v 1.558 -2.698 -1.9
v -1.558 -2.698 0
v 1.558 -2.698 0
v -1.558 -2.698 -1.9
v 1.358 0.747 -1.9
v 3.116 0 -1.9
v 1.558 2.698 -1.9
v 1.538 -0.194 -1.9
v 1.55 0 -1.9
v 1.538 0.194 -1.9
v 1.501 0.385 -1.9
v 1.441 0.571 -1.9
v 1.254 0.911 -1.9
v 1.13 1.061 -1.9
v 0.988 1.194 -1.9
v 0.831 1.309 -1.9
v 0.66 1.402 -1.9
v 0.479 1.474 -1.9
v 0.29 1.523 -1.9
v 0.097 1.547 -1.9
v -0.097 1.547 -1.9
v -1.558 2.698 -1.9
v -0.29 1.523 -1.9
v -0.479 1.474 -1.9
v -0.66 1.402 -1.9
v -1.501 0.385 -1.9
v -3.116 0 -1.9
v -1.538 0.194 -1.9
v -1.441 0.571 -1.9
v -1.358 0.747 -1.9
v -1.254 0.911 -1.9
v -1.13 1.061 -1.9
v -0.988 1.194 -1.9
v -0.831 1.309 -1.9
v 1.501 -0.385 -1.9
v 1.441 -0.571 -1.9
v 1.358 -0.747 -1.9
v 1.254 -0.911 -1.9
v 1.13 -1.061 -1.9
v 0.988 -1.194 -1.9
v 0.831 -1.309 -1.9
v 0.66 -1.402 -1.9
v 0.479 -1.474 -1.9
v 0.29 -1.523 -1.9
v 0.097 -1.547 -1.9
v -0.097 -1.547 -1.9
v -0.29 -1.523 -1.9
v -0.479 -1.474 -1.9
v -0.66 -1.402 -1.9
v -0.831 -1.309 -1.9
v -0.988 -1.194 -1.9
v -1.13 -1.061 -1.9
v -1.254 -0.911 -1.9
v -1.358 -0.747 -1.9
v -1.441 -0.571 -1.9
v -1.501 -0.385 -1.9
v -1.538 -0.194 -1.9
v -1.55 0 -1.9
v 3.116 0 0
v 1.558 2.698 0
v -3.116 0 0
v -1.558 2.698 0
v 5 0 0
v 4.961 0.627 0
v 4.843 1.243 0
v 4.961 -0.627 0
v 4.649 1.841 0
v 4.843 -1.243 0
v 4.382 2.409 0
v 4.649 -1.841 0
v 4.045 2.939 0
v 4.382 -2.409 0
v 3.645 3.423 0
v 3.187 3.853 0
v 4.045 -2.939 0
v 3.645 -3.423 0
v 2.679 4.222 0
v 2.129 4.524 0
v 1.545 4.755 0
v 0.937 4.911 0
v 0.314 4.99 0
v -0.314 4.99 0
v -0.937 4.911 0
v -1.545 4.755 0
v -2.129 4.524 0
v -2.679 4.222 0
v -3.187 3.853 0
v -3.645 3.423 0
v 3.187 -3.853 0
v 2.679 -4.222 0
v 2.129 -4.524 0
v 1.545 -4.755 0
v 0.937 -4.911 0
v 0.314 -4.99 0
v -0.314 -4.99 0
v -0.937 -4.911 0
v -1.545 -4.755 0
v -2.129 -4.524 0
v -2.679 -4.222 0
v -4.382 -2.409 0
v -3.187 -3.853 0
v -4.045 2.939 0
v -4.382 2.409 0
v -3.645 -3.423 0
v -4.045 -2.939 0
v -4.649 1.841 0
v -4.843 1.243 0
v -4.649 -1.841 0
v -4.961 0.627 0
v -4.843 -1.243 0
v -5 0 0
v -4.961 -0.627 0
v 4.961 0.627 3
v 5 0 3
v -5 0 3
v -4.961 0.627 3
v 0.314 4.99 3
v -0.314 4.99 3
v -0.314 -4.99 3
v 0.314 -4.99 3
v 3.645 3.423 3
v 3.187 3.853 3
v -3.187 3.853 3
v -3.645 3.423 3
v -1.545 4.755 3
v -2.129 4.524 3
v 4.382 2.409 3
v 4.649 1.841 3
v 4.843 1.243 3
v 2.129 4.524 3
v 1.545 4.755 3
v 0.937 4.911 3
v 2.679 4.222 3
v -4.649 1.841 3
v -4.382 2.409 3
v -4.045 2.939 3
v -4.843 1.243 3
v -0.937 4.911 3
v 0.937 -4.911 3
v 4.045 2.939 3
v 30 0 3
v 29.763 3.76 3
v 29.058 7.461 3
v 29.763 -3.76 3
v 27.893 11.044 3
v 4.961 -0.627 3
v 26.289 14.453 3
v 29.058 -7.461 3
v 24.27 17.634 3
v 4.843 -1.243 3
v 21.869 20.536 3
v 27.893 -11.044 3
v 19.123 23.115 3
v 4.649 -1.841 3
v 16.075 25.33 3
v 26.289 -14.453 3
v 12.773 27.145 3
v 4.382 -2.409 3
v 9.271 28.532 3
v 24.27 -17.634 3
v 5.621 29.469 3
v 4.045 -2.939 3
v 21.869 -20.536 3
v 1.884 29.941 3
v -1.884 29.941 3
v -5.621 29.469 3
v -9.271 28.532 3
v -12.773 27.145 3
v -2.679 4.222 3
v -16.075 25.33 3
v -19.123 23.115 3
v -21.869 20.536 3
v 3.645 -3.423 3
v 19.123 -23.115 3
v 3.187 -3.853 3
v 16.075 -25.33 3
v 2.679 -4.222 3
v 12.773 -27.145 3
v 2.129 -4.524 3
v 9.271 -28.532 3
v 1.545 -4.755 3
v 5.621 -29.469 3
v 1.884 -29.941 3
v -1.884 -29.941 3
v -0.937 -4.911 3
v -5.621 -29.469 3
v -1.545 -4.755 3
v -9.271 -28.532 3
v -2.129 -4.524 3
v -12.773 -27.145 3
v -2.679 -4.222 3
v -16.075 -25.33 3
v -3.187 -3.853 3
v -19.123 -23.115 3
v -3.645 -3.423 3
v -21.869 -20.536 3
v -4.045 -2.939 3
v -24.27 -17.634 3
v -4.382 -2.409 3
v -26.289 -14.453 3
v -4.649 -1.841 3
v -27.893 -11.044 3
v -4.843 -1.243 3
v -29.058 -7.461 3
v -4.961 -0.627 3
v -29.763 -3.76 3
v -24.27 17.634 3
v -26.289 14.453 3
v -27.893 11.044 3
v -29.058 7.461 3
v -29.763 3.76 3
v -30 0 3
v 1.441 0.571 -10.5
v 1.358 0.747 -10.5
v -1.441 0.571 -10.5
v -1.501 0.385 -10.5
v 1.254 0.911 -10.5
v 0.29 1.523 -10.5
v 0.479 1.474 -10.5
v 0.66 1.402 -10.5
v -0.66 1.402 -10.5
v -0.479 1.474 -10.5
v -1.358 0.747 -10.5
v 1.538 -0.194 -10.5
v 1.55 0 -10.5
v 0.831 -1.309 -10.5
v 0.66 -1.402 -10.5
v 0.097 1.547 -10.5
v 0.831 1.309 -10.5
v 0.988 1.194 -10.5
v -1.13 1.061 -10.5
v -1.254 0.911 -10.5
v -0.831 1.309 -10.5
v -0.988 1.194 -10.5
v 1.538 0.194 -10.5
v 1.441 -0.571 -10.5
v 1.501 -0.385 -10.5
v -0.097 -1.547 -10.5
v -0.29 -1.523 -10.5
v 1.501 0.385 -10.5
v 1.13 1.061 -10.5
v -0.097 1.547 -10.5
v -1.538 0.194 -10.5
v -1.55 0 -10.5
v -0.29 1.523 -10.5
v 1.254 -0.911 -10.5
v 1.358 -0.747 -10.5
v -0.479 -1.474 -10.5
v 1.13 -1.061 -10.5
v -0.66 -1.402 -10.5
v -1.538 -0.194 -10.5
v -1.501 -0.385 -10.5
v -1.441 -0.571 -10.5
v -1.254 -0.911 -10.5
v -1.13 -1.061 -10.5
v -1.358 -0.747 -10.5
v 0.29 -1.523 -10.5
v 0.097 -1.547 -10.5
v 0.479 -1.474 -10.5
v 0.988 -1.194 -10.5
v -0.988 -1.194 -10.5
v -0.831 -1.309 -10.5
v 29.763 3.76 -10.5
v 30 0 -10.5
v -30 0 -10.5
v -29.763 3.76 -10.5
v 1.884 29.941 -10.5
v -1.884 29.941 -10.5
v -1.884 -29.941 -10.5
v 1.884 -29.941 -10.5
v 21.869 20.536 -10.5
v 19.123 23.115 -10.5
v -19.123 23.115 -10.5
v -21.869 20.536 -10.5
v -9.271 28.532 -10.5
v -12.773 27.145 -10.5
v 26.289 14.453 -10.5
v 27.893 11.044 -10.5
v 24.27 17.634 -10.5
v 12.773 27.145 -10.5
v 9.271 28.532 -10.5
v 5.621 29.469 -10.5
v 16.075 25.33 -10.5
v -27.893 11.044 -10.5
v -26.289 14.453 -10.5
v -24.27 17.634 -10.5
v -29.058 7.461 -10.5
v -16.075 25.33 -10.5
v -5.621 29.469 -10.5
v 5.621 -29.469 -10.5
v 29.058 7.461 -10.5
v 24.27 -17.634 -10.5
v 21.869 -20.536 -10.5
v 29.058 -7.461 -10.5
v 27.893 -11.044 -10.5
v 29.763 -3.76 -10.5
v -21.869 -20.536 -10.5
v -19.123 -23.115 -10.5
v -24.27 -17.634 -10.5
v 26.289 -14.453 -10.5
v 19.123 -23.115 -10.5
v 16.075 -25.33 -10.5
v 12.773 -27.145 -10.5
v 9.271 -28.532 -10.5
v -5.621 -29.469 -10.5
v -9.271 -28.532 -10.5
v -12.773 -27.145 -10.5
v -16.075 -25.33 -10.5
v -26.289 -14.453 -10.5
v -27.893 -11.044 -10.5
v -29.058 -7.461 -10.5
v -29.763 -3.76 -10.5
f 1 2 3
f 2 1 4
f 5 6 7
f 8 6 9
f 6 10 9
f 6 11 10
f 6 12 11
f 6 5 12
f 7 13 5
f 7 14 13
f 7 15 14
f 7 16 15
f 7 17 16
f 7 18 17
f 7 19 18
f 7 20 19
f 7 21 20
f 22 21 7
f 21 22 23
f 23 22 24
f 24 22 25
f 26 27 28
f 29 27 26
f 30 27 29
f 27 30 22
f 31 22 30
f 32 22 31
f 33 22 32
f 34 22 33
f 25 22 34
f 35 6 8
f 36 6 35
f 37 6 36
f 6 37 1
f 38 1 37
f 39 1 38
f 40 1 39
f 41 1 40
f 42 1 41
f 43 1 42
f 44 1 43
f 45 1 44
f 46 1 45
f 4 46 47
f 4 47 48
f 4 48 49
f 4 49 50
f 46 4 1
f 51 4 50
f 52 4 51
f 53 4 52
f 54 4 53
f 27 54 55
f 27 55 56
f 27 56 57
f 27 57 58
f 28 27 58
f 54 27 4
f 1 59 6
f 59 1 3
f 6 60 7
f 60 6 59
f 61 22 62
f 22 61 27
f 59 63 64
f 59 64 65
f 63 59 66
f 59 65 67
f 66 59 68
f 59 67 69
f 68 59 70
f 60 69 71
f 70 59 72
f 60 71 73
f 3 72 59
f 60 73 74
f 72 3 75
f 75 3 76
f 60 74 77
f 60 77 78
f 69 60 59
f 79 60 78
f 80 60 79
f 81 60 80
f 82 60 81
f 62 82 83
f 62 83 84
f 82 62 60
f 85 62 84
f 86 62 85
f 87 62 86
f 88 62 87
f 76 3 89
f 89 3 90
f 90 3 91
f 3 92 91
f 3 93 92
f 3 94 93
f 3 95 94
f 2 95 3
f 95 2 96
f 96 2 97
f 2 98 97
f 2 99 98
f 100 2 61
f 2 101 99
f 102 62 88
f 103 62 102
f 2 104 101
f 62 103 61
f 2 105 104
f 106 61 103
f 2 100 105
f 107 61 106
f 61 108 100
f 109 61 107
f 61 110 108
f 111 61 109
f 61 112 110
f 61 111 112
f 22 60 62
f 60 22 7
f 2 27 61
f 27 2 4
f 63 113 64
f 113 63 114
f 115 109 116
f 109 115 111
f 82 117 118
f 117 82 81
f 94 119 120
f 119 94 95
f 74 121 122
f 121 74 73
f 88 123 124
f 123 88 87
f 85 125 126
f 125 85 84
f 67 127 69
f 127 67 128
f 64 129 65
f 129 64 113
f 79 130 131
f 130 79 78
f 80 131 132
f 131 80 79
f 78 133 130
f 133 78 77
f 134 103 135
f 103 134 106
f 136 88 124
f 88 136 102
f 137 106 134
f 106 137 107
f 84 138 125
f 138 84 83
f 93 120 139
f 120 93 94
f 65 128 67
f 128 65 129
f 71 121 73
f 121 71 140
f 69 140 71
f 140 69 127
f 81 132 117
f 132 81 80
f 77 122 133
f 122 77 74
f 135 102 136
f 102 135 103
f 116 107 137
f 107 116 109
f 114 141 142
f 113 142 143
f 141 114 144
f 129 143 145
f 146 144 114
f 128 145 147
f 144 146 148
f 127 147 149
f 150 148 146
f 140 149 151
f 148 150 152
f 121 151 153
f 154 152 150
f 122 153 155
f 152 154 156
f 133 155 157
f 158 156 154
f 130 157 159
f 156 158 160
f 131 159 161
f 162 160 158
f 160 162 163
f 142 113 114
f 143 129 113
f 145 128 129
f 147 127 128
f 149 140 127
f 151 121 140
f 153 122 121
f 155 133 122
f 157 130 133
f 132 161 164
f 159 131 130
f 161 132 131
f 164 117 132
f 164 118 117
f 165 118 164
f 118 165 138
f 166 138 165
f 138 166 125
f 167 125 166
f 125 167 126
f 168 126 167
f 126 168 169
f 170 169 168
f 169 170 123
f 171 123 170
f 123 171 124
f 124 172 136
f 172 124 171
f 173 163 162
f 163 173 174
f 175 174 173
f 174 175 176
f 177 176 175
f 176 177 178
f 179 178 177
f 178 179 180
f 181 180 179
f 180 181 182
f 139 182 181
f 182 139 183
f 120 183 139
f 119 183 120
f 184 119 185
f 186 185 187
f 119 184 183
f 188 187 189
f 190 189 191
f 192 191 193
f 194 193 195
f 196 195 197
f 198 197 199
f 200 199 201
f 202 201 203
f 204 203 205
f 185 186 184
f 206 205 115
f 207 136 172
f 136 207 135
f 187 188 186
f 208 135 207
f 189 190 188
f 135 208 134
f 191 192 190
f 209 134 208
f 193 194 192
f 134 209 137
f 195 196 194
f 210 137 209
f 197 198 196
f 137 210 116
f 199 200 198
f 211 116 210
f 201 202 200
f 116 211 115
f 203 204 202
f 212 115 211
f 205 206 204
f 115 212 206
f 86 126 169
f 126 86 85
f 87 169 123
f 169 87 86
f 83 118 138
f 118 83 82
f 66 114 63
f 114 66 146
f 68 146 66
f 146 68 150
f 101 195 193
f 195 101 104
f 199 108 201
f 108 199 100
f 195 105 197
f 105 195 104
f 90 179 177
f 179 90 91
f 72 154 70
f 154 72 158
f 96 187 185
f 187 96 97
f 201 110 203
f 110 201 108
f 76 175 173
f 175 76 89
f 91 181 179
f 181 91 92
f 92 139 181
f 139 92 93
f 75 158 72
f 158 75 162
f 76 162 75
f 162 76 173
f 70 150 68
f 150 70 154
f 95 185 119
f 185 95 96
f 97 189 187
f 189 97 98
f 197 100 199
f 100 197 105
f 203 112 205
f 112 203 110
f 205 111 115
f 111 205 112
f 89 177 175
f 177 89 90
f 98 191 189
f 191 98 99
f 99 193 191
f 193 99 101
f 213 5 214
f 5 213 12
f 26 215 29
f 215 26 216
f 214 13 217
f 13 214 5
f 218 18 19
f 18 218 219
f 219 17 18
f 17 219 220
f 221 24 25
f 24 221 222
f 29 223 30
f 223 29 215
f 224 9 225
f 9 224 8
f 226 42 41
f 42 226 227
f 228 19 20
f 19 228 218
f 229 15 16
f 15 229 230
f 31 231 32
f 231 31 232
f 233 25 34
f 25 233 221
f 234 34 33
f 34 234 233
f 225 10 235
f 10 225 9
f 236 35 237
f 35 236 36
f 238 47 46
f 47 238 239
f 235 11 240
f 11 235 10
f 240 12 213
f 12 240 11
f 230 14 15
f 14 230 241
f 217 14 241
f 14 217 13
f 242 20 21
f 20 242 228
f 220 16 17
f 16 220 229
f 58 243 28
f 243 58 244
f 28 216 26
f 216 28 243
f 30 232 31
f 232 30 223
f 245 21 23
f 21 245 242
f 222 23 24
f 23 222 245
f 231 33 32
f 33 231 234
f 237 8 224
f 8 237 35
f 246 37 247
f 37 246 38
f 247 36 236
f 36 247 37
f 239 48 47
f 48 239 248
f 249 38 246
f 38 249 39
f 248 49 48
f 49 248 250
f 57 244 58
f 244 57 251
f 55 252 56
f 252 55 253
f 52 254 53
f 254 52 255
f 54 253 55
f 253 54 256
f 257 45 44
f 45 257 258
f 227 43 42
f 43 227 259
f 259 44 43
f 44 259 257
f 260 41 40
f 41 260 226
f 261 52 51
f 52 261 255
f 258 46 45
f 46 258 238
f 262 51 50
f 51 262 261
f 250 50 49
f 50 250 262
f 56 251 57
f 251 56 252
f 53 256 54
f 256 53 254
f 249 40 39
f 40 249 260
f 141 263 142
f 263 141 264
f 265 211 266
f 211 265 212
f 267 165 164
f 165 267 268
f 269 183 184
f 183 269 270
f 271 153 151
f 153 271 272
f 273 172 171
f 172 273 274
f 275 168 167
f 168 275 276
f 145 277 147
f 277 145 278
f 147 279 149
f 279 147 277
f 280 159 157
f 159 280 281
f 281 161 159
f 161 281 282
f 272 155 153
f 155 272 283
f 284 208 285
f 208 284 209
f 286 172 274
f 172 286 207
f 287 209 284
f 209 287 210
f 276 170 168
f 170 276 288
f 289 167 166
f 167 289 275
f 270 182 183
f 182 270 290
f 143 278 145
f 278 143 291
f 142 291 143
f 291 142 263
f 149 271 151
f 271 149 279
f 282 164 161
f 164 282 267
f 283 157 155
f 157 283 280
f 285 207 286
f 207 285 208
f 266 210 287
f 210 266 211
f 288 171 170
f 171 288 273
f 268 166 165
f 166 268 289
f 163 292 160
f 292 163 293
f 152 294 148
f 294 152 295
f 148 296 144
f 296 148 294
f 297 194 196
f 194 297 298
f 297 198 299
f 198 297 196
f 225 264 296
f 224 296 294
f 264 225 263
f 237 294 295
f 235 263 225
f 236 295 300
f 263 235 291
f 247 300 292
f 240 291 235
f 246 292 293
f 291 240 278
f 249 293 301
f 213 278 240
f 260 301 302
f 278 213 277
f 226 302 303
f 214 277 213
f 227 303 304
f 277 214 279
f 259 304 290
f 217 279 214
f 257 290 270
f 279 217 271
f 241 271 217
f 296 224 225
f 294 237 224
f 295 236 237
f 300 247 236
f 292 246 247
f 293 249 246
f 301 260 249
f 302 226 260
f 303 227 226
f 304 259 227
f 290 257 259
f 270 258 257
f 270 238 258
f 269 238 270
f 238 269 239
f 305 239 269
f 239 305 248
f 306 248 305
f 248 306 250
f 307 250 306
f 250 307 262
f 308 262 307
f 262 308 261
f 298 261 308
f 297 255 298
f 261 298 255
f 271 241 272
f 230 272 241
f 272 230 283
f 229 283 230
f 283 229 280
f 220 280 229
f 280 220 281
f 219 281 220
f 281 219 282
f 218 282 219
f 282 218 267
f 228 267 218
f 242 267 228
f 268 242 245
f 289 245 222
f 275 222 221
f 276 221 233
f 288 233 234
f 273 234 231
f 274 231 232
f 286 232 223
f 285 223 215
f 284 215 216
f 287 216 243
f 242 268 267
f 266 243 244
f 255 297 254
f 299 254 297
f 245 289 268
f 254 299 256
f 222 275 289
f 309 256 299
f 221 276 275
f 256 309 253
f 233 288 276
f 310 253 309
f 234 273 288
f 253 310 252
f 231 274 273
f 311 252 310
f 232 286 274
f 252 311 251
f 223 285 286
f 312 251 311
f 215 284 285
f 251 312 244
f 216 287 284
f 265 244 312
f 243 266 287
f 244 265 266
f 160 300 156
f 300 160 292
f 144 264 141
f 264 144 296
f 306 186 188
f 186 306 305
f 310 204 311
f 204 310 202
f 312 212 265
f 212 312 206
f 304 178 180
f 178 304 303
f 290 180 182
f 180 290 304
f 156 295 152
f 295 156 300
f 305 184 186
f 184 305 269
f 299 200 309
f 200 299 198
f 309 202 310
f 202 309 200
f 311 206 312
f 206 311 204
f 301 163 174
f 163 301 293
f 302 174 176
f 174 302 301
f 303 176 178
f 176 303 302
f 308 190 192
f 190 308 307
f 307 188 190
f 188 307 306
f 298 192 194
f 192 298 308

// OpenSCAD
$fn = 50;


difference() {
	union() {
		translate(v = [0, 0, -10.5000000000]) {
			cylinder(h = 13.5000000000, r = 30.0000000000);
		}
	}
	union() {
		translate(v = [0, 0, 0]) {
			rotate(a = [0, 0, 0]) {
				difference() {
					union() {
						translate(v = [0, 0, -1.9000000000]) {
							linear_extrude(height = 1.9000000000) {
								polygon(points = [[3.1158000000, 0.0000000000], [1.5579000000, 2.6983619531], [-1.5579000000, 2.6983619531], [-3.1158000000, 0.0000000000], [-1.5579000000, -2.6983619531], [1.5579000000, -2.6983619531]]);
							}
						}
					}
					union();
				}
			}
		}
		#cylinder(h = 3, r = 5.0000000000);
		#translate(v = [0, 0, -100.0000000000]) {
			cylinder(h = 200, r = 1.5500000000);
		}
	}
}
